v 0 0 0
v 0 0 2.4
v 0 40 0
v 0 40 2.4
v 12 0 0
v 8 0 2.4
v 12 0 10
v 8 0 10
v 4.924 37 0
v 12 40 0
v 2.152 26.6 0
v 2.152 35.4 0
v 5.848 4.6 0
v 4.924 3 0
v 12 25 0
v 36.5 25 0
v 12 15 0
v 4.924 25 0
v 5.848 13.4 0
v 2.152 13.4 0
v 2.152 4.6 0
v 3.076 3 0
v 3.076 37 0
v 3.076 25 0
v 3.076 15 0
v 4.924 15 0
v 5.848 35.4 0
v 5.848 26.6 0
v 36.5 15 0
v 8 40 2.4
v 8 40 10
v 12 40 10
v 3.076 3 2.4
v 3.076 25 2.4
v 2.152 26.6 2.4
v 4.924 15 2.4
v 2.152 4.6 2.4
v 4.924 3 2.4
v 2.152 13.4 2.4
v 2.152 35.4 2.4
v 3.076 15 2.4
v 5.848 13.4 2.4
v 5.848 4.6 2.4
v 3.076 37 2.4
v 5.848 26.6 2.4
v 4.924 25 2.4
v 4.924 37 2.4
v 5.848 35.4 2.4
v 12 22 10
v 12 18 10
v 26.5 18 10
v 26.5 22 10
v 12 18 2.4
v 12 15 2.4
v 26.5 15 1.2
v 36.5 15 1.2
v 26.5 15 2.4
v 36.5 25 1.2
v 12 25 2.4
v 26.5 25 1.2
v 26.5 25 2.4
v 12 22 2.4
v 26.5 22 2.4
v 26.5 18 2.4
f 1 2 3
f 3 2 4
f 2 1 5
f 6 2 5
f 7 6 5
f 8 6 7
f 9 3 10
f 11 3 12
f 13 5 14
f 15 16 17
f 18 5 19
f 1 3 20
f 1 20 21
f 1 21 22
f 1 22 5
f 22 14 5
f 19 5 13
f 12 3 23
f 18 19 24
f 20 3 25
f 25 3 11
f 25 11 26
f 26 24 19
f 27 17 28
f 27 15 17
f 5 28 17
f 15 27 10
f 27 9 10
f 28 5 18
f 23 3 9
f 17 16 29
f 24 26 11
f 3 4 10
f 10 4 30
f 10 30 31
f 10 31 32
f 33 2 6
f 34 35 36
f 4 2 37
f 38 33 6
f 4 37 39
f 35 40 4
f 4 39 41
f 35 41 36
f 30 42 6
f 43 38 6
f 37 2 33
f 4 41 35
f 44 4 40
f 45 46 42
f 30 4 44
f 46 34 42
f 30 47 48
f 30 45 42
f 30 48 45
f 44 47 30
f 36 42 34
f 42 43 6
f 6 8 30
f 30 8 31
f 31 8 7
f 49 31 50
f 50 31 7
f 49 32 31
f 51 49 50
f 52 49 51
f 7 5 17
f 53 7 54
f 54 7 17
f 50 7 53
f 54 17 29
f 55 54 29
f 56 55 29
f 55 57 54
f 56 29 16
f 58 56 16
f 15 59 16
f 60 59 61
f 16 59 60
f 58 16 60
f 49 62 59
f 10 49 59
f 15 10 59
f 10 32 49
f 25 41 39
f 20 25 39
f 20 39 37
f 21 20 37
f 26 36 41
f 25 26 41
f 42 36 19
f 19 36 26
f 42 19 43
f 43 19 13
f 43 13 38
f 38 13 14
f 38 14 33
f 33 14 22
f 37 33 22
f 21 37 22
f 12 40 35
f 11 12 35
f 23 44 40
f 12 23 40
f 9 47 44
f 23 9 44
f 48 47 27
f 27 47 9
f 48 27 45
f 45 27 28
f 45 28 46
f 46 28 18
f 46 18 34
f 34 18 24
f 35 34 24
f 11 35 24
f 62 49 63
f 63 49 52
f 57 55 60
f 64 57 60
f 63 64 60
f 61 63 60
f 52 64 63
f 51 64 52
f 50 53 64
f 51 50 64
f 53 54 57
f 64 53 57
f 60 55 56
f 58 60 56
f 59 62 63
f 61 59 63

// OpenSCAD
//-----------------------------------------------------------------------------------
// signaling strip for optical endstop
// can be attached to platform 
// for my custom Mendel90
// for the y min endstop (the endstop holder is screwed onto the base plate)
// (c) 2013 by Stemer114
// License: licensed under the Creative Commons - GNU GPL license.
//          http://www.gnu.org/licenses/gpl-2.0.html
//-----------------------------------------------------------------------------------

//-----------------------------------------------------------------------------------
//display settings
//-----------------------------------------------------------------------------------

//color settings

//-----------------------------------------------------------------------------------
//global configuration settings
//-----------------------------------------------------------------------------------
de = 0.1; //delta param, so differences are scaled and do not become manifold
fn_hole = 12;  //fn setting for round holes/bores (polyhole)
ex = 0;  //offset for Explosivdarstellung, set to 0 for none

//-----------------------------------------------------------------------------------
//configuration settings
//-----------------------------------------------------------------------------------

//endstop pcb size plus tolerance
P1 = 40;  //top width
P2 = 8;   //plate thickness
P3 = 4;   //bracket thickness
P4 = 28.5 - P3; //strip length
P41 = 10;     //lower strip length
P5 = 10;  //strip widh
P6 = 2.4;   //strip thickness
P61 = 1.2;  //strip lower thickness
P7 = 10;  //bracket width
P8 = 3;   //slot hole offset from edge
P9 = 3.2; //slot hole dia
P10 = 12;  //slot hole length

//-----------------------------------------------------------------------------------
// libraries
//-----------------------------------------------------------------------------------
//include <lib/common.scad>

//-----------------------------------------------------------------------------------
// main rendering
//-----------------------------------------------------------------------------------


//transparent 10mm cube for debugging
//translate([0, 0, -10])
//% cube(10, 10, 10);

Strip();


//-----------------------------------------------------------------------------------
// modules
//-----------------------------------------------------------------------------------

module Strip()
{
    difference()
    {
        union()
        {
            //holder
           cube([P2+P3, P1, P6], center=false);

           //strip upper part
           translate([P2+P3, (P1-P5)/2, 0])
               cube([P4-P41, P5, P6], center=false);

           //strip lower part (thinner)
           translate([P2+P3+P4-P41, (P1-P5)/2, 0])
               cube([P41, P5, P61], center=false);


           //bracket transversal
           translate([P2, 0, 0])
               cube([P3, P1, P7], center=false);

           //bracket longitudinal
           translate([P2+P3, P1/2-P3/2, 0])
               cube([P4-P41, P3, P7], center=false);


        }

        union()
        {
            //slot hole left
            hull() {
            translate([P2/2, P8+P9/2, -de])
                polyhole(P3+2*de, P9);
            translate([P2/2, P8+P10-P9/2, -de])
                polyhole(P3+2*de, P9);
            }

            //slot hole right 
            translate([0, -P8+P1-P8-P10])
            hull() {
            translate([P2/2, P8+P9/2, -de])
                polyhole(P3+2*de, P9);
            translate([P2/2, P8+P10-P9/2, -de])
                polyhole(P3+2*de, P9);
            }


        }
    }
}


//-----------------------------------------------------------------------------------
// utility functions
//-----------------------------------------------------------------------------------

//polyhole by nophead
//see http://hydraraptor.blogspot.de/2011/02/polyholes.html
module polyhole(h, d) {
    n = max(round(2 * d),3);
    rotate([0,0,180])
        cylinder(h = h, r = (d / 2) / cos (180 / n), $fn = n);
}


/* creates a cube with rounded corners in z direction
   with the corners array it can be specified, which corners are rounded
   (default: all)
   */
module CubeRounded(x, y, z, r, corners=[1, 1, 1, 1]) {
    $fn=20;

    hull() {
        //lower left
        translate([r, r, 0]) 
            CubeCorner(r, z, corners[0]);

        //lower right
        translate([x-r, r, 0])
            CubeCorner(r, z, corners[1]);

        //upper left
        translate([r, y-r, 0])
            CubeCorner(r, z, corners[2]);

        //upper right
        translate([x-r, y-r, 0])
            CubeCorner(r, z, corners[3]);
    }
}

module CubeCorner(r, z, cornermode) {
    if (cornermode==1) {
        cylinder(h=z, r=r);
    } else {
        translate([0, 0, z/2])
            cube([2*r, 2*r, z], center=true);
    }
} 
